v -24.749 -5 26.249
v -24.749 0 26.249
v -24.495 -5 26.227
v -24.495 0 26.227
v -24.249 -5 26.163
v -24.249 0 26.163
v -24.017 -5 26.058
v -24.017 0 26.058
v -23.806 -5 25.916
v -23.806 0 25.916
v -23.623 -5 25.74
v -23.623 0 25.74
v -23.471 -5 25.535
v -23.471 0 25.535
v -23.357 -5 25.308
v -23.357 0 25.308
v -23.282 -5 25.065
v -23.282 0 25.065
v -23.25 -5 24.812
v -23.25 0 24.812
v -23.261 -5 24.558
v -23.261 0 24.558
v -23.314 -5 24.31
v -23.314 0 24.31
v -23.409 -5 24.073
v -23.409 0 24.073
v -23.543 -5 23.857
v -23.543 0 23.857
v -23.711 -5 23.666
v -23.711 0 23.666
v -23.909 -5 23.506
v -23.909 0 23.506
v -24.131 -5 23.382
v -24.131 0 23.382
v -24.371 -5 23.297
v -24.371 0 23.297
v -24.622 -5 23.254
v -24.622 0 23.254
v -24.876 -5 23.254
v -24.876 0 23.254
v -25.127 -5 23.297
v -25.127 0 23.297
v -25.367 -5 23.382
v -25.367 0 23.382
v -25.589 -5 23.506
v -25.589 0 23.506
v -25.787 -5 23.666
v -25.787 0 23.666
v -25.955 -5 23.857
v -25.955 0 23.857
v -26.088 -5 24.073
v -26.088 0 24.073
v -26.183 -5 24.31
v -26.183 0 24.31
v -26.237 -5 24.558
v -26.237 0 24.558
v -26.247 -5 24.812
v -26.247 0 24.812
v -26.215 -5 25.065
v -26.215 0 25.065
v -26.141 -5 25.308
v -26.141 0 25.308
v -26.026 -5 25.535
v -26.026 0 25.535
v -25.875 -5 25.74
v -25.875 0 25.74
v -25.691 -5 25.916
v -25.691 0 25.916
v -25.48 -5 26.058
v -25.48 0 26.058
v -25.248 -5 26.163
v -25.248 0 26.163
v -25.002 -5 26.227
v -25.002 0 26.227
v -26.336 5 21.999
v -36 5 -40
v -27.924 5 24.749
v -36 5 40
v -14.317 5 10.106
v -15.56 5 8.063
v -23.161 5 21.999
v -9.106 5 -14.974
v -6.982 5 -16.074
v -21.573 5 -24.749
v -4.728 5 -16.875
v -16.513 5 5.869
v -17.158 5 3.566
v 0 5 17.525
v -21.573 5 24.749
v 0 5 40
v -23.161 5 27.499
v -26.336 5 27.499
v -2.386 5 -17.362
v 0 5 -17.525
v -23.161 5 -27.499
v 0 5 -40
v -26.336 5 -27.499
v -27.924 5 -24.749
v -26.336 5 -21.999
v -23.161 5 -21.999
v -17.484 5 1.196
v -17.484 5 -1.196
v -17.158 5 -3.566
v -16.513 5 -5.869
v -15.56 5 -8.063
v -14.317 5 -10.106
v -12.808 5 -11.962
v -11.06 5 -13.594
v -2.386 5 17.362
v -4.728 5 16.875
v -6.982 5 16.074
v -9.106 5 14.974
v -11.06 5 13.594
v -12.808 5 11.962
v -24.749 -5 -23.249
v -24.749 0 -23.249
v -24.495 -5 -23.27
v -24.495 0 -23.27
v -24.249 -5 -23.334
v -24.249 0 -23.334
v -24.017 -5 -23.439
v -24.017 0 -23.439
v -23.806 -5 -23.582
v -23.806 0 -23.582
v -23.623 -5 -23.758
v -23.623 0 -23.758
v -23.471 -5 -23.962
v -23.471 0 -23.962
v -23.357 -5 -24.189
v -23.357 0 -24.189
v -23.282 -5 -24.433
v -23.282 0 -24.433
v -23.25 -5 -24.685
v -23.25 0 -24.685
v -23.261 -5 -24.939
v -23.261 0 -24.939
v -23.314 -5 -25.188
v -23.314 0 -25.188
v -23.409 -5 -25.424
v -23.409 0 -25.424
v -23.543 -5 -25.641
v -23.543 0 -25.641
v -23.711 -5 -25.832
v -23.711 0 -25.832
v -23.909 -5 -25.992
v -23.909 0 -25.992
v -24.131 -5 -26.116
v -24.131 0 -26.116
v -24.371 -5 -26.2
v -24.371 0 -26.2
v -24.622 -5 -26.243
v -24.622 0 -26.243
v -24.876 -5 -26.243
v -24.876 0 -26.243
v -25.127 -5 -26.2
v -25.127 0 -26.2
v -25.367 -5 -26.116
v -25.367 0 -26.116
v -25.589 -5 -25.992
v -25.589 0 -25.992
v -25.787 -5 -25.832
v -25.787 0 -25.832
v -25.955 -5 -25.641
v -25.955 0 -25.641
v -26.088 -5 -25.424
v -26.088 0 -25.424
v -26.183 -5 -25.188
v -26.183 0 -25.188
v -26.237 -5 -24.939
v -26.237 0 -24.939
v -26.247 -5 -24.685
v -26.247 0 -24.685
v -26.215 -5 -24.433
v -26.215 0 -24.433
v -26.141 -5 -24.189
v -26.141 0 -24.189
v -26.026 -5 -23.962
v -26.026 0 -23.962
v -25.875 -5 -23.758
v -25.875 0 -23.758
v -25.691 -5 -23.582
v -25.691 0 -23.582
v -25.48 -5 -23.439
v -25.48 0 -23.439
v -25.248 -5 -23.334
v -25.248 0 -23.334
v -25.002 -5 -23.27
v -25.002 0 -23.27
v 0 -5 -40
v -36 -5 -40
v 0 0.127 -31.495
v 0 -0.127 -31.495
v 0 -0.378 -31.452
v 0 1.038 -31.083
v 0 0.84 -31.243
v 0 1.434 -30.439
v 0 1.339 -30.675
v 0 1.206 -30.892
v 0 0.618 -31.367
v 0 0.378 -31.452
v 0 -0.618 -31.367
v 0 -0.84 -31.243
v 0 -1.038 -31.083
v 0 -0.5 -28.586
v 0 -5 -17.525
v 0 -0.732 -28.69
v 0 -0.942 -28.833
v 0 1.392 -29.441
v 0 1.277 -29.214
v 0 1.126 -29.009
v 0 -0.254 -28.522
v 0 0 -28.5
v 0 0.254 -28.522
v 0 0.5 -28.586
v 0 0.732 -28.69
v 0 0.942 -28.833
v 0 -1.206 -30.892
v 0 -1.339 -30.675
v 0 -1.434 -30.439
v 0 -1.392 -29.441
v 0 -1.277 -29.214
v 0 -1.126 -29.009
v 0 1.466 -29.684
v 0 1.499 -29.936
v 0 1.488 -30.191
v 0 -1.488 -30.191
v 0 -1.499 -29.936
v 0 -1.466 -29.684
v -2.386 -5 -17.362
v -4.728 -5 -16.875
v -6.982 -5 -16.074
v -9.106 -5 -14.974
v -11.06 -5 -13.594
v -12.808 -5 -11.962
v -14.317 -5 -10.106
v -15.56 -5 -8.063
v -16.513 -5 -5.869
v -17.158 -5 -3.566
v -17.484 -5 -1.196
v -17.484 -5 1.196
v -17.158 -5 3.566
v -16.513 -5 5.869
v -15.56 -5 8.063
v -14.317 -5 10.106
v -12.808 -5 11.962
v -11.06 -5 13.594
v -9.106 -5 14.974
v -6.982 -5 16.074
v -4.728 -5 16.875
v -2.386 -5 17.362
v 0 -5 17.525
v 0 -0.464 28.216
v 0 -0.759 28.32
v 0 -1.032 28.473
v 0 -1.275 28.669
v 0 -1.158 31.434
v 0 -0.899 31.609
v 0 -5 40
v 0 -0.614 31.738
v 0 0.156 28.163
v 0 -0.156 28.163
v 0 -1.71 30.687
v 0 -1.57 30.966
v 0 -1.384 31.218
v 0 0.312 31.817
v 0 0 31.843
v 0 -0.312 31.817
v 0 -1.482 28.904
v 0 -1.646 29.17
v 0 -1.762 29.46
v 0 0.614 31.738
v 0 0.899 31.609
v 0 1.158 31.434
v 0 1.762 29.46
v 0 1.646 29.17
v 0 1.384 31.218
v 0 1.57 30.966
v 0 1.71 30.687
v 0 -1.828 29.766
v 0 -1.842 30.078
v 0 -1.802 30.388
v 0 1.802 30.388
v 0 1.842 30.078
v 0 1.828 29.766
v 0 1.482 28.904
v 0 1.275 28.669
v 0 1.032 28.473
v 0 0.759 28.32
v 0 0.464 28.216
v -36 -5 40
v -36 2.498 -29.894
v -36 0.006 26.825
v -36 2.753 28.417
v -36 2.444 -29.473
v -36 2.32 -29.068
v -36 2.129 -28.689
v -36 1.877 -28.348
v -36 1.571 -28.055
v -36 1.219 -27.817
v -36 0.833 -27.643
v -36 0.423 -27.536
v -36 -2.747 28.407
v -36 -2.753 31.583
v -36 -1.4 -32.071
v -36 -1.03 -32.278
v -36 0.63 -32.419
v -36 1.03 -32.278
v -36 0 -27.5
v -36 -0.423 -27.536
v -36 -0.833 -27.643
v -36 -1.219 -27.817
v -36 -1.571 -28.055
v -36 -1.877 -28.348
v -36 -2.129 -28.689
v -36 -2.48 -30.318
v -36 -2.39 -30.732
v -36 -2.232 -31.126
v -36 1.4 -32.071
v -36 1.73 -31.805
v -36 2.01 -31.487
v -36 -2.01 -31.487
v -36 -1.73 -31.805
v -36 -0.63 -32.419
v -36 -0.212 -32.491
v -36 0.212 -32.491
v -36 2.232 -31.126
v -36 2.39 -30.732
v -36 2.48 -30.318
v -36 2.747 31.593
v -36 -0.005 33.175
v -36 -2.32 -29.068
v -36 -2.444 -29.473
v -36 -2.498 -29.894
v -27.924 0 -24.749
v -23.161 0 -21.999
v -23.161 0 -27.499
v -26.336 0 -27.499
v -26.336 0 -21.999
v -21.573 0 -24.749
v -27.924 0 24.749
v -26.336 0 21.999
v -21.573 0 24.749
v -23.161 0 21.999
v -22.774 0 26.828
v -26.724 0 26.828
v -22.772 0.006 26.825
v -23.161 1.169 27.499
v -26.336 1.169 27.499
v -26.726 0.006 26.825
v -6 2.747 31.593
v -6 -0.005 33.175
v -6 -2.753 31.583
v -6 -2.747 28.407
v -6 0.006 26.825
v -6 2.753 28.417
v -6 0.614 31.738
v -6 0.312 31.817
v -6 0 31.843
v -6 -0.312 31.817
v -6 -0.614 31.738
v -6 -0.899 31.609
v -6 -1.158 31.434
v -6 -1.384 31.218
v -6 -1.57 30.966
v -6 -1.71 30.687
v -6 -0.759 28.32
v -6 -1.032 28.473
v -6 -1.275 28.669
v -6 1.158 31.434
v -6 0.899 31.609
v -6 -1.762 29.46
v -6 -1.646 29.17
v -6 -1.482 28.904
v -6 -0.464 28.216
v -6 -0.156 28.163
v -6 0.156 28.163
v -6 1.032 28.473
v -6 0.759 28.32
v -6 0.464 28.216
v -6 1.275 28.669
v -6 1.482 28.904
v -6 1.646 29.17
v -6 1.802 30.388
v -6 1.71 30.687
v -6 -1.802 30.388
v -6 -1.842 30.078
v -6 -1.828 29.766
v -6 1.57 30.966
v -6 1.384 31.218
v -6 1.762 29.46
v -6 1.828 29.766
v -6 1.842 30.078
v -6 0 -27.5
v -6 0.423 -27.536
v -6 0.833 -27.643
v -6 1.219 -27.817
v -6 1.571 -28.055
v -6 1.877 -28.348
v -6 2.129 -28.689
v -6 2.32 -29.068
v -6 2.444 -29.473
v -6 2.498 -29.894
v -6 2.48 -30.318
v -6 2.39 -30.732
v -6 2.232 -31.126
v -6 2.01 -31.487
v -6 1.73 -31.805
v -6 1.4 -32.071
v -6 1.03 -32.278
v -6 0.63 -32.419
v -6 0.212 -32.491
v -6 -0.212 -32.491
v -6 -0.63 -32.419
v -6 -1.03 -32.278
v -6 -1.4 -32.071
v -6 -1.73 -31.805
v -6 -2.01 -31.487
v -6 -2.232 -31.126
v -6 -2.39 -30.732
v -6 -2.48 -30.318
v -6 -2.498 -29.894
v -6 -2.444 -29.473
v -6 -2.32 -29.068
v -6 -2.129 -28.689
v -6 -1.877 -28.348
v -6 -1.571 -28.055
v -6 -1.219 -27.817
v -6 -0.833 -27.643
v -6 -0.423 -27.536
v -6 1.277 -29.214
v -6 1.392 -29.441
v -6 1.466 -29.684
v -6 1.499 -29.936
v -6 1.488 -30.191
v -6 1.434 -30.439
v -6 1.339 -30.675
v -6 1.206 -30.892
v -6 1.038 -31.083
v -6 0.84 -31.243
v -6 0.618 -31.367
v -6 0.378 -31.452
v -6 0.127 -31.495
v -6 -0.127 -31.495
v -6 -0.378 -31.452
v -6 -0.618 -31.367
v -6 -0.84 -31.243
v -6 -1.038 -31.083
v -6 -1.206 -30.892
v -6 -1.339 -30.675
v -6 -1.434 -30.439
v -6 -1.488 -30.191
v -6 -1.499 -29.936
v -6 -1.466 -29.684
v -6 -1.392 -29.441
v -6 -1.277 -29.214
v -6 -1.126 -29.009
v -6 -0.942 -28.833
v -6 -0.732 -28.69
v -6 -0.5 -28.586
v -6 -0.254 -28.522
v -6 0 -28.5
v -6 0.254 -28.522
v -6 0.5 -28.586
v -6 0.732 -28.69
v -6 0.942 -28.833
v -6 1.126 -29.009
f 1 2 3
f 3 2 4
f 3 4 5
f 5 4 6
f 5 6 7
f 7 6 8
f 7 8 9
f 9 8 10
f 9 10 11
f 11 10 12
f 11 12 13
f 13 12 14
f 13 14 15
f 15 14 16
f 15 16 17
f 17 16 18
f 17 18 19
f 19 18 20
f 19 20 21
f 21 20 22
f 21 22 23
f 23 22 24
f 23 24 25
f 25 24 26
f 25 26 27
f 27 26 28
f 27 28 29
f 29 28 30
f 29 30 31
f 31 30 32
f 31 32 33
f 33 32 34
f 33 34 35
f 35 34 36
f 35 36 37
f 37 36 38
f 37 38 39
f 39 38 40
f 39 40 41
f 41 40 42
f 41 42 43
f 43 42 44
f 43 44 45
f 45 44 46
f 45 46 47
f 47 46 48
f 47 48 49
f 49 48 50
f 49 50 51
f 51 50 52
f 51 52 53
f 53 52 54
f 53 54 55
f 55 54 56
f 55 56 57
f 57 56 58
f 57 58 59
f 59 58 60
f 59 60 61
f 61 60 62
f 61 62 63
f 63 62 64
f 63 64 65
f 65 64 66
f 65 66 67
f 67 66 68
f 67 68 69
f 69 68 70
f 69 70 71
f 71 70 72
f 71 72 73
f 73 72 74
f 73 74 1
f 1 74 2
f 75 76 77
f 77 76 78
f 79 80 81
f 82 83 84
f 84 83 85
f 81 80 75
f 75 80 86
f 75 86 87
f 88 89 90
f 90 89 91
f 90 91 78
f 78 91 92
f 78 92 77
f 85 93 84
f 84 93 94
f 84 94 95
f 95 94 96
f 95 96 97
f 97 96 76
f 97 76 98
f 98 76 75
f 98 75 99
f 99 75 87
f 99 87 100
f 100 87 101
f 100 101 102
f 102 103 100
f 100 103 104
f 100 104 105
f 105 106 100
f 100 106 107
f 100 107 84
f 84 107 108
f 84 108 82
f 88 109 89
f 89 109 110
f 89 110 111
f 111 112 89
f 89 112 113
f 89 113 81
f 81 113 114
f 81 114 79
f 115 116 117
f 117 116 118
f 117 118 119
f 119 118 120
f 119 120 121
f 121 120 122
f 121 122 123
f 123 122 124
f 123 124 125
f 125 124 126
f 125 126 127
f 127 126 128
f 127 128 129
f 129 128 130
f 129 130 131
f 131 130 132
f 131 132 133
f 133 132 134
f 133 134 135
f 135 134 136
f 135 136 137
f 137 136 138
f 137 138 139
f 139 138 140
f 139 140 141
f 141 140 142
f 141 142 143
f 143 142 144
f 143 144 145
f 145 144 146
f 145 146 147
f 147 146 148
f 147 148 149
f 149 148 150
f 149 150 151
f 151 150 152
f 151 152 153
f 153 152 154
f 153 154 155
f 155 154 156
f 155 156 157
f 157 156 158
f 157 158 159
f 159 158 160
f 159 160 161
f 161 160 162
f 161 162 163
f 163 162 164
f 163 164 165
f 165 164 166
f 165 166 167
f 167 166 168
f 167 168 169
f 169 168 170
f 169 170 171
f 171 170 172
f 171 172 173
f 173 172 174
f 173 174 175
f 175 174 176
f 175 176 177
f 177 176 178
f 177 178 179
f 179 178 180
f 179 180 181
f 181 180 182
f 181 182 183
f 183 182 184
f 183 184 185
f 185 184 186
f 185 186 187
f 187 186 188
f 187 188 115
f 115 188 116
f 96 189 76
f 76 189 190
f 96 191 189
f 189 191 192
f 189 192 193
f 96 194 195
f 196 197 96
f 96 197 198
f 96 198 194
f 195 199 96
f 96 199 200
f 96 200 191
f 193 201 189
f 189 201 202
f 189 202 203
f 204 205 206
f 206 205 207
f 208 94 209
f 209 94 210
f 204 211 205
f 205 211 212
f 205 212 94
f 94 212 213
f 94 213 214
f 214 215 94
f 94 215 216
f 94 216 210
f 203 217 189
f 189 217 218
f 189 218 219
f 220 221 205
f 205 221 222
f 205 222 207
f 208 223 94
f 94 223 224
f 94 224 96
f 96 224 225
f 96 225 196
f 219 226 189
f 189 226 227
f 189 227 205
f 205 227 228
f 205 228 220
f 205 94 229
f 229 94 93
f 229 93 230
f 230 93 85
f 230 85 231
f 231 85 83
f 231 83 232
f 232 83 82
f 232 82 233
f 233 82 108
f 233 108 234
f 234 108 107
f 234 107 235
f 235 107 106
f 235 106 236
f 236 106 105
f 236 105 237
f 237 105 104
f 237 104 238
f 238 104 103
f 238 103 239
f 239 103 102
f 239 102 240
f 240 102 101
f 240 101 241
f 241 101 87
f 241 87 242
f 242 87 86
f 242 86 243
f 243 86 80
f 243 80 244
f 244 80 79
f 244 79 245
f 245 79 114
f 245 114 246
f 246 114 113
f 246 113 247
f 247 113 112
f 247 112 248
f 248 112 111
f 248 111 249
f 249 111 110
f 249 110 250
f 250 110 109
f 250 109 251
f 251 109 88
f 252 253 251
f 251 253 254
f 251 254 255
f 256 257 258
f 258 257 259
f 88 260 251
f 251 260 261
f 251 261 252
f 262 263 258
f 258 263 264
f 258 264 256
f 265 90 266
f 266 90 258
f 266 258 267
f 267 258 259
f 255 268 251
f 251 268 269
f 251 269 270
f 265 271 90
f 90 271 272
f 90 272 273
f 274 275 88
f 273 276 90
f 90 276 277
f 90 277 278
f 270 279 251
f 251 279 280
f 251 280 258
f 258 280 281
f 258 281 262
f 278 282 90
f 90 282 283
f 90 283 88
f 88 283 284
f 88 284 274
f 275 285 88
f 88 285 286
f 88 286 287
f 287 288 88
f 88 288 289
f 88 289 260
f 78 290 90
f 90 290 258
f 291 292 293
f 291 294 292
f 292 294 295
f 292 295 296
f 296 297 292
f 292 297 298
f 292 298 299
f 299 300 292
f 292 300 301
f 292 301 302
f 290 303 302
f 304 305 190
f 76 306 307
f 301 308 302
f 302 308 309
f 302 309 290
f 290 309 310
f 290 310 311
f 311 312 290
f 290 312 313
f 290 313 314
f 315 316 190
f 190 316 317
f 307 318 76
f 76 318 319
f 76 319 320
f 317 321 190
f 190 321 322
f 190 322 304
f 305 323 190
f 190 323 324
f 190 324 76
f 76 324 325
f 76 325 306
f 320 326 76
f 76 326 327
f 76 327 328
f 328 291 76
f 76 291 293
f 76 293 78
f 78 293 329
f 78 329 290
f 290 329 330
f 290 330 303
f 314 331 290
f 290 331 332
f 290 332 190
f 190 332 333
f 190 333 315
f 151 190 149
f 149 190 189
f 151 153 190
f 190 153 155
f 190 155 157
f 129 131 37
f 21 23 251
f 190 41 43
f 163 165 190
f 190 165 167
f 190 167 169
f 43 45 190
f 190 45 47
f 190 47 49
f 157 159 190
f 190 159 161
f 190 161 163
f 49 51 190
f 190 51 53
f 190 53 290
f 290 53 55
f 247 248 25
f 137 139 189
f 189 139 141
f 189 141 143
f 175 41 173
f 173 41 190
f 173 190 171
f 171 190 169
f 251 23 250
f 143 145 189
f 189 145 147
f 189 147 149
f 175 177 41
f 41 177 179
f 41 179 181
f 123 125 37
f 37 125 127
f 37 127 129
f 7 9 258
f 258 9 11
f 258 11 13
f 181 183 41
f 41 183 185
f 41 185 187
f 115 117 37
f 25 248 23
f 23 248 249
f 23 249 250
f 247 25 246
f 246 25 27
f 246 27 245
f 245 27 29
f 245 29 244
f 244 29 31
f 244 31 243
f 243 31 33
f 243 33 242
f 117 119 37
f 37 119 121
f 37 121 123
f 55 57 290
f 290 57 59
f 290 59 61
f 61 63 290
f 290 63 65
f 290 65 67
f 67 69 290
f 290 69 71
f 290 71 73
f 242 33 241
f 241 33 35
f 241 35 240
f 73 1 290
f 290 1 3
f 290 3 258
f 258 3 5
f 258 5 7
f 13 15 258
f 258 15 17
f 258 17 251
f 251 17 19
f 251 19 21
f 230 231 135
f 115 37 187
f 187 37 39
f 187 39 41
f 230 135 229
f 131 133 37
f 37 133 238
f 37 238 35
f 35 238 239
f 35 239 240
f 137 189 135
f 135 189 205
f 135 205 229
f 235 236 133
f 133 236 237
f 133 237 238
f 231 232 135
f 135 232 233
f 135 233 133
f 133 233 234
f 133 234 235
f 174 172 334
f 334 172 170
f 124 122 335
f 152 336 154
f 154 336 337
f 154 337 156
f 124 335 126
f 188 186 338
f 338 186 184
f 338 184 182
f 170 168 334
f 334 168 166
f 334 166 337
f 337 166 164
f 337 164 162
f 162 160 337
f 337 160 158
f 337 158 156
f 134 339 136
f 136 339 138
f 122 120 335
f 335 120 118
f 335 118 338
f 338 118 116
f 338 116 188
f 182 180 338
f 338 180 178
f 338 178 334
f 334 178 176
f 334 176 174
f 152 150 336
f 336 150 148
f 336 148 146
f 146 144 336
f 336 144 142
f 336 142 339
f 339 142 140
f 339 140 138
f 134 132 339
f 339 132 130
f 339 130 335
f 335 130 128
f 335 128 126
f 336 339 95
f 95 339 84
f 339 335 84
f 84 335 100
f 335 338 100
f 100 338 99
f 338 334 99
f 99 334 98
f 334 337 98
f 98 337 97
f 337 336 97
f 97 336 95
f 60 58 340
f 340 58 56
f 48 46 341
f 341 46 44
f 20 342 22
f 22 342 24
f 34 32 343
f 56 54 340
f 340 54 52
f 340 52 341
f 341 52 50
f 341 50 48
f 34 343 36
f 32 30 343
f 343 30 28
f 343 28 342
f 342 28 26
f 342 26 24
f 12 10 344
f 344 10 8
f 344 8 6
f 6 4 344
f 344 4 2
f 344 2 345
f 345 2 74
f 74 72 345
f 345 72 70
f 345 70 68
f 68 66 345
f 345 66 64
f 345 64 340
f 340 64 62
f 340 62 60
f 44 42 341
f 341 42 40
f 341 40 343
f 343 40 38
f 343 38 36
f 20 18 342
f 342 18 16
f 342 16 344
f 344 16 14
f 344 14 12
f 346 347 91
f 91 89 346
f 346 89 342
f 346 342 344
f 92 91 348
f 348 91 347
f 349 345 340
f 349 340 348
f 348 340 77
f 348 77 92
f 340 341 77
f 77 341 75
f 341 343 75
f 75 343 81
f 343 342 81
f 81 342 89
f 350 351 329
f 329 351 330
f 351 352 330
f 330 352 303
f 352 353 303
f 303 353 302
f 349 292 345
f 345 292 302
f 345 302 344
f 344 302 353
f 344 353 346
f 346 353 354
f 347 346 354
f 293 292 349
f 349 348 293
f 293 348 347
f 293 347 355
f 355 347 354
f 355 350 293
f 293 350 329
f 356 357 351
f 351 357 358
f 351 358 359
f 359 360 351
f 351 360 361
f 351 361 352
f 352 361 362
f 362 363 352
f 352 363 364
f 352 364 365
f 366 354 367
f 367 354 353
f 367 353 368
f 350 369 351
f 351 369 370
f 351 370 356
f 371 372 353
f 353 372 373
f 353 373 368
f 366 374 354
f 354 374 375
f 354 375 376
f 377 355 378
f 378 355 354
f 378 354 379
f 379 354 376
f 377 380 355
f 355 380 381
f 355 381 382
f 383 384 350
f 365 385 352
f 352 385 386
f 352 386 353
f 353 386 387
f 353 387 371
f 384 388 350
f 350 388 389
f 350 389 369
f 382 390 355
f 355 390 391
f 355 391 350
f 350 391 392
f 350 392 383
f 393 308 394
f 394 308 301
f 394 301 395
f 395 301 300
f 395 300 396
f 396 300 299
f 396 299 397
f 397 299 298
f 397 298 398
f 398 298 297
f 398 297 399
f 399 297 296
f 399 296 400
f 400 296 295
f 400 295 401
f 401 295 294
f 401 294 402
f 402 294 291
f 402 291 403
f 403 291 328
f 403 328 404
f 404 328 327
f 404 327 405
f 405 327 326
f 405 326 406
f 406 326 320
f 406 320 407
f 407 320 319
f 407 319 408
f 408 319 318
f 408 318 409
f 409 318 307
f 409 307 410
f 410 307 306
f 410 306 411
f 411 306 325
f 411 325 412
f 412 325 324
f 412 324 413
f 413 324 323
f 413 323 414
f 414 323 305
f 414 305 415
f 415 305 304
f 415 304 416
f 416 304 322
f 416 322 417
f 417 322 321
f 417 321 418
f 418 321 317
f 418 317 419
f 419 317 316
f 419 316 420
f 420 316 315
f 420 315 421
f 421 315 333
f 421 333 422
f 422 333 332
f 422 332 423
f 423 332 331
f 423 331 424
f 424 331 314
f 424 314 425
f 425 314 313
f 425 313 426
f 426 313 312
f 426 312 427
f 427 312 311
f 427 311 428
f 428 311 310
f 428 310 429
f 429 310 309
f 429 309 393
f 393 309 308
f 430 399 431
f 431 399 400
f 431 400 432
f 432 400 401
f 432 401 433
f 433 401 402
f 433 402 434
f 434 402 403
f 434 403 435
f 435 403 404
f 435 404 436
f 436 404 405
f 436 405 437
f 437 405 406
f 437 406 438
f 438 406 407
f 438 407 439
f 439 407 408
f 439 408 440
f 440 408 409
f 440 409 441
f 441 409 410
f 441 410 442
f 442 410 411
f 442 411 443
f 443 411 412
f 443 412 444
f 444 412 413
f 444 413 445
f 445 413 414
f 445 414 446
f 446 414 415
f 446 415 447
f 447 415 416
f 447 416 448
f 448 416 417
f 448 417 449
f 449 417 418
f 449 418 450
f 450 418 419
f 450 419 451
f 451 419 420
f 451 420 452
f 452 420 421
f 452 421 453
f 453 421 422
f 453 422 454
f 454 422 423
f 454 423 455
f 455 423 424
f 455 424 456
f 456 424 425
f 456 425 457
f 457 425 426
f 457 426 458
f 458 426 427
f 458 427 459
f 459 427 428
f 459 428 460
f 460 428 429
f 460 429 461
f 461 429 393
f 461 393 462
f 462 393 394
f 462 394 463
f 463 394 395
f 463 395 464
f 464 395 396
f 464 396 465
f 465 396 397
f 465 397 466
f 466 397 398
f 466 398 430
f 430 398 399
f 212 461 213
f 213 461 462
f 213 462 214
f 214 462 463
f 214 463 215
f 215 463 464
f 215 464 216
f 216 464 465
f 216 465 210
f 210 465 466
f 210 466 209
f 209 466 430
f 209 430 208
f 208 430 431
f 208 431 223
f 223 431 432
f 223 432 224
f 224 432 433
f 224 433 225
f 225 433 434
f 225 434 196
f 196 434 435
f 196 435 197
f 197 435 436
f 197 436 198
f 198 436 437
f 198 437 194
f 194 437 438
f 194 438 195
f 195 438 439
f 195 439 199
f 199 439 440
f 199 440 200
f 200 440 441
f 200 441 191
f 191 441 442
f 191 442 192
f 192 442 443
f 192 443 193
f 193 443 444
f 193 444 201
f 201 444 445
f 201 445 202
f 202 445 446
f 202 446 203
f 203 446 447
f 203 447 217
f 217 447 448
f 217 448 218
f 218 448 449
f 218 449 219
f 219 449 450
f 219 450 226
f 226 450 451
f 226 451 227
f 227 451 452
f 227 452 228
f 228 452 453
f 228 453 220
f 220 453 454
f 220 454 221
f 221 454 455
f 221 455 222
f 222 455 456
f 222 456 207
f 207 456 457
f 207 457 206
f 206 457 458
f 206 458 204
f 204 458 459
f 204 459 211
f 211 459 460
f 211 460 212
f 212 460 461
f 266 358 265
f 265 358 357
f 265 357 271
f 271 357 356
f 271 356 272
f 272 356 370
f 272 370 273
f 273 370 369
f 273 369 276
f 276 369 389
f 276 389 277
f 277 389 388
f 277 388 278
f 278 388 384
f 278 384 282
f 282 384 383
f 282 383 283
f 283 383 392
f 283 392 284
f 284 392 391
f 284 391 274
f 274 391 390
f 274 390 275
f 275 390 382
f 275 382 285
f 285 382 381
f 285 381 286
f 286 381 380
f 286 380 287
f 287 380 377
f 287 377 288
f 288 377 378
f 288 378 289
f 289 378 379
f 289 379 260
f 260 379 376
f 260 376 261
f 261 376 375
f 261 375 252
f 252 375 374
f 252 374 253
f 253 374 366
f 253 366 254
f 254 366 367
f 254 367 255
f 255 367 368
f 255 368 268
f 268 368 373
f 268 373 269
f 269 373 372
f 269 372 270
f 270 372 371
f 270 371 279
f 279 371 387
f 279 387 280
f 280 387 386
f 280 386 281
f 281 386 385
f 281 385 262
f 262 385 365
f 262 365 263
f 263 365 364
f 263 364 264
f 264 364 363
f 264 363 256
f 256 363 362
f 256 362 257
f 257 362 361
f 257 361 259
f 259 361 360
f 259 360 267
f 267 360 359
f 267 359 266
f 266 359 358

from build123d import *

# Parameters (mm, degrees)
BOSS_EXTRUDE1_DEPTH      = 5
BOSS_EXTRUDE1_DEPTH_BACK = 5
SKETCH1_R                = 1.5
CUT_EXTRUDE1_DEPTH       = 5
SKETCH5_R                = 2.5
CUT_EXTRUDE3_DEPTH       = 30
SKETCH6_R                = 1.5
SKETCH6_R_2              = 1.843261337
CUT_EXTRUDE4_DEPTH       = 42


with BuildPart() as part:
    # Sketch1 → Boss-Extrude1 (new, two sides: drawn at the far end of the back side and taken through both)
    with BuildSketch(Plane(origin=(0, 0, 0), x_dir=(1, 0, 0), z_dir=(0, 1, 0)).offset(-BOSS_EXTRUDE1_DEPTH_BACK)):
        with BuildLine():
            Line((0, 17.525), (0, 40))
            Line((0, 40), (-36, 40))
            Line((-36, 40), (-36, -40))
            Line((-36, -40), (0, -40))
            Line((0, -40), (0, -17.525))
            ThreePointArc((0, -17.525), (-17.525, 0), (0, 17.525))
        make_face()
        with Locations((-24.748737342, 24.748737342)):
            Circle(SKETCH1_R, mode=Mode.SUBTRACT)
        with Locations((-24.748737342, -24.748737342)):
            Circle(SKETCH1_R, mode=Mode.SUBTRACT)
    extrude(amount=BOSS_EXTRUDE1_DEPTH + BOSS_EXTRUDE1_DEPTH_BACK)

    # Sketch2 → Cut-Extrude1 (cut)
    with BuildSketch(Plane(origin=(0, 5, 0), x_dir=(1, 0, 0), z_dir=(0, 1, 0))):
        Polygon((-23.161024101, 27.498737342), (-26.336450582, 27.498737342), (-27.924163822, 24.748737342), (-26.336450582, 21.998737342), (-23.161024101, 21.998737342), (-21.573310861, 24.748737342), align=None)
    cut_extrude1 = extrude(amount=-CUT_EXTRUDE1_DEPTH, mode=Mode.SUBTRACT)

    # Mirror1: Cut-Extrude1 across plane
    add(cut_extrude1.mirror(Plane.XY), mode=Mode.SUBTRACT)

    # Sketch5 → Cut-Extrude3 (cut)
    with BuildSketch(Plane.ZY.offset(36)):
        with Locations((-30, 0)):
            Circle(SKETCH5_R)
        Polygon((31.592573026, 2.747490689), (28.417151509, 2.753105152), (26.824578483, 0.005916682), (28.407426974, -2.746886251), (31.582848491, -2.752500714), (33.175421517, -0.005312244), align=None)
    extrude(amount=-CUT_EXTRUDE3_DEPTH, mode=Mode.SUBTRACT)

    # Sketch6 → Cut-Extrude4 (cut)
    with BuildSketch(Plane.ZY.offset(36)):
        with Locations((-30, 0)):
            Circle(SKETCH6_R)
        with Locations((30, 0)):
            Circle(SKETCH6_R_2)
    extrude(amount=-CUT_EXTRUDE4_DEPTH, mode=Mode.SUBTRACT)


solid = part.part
